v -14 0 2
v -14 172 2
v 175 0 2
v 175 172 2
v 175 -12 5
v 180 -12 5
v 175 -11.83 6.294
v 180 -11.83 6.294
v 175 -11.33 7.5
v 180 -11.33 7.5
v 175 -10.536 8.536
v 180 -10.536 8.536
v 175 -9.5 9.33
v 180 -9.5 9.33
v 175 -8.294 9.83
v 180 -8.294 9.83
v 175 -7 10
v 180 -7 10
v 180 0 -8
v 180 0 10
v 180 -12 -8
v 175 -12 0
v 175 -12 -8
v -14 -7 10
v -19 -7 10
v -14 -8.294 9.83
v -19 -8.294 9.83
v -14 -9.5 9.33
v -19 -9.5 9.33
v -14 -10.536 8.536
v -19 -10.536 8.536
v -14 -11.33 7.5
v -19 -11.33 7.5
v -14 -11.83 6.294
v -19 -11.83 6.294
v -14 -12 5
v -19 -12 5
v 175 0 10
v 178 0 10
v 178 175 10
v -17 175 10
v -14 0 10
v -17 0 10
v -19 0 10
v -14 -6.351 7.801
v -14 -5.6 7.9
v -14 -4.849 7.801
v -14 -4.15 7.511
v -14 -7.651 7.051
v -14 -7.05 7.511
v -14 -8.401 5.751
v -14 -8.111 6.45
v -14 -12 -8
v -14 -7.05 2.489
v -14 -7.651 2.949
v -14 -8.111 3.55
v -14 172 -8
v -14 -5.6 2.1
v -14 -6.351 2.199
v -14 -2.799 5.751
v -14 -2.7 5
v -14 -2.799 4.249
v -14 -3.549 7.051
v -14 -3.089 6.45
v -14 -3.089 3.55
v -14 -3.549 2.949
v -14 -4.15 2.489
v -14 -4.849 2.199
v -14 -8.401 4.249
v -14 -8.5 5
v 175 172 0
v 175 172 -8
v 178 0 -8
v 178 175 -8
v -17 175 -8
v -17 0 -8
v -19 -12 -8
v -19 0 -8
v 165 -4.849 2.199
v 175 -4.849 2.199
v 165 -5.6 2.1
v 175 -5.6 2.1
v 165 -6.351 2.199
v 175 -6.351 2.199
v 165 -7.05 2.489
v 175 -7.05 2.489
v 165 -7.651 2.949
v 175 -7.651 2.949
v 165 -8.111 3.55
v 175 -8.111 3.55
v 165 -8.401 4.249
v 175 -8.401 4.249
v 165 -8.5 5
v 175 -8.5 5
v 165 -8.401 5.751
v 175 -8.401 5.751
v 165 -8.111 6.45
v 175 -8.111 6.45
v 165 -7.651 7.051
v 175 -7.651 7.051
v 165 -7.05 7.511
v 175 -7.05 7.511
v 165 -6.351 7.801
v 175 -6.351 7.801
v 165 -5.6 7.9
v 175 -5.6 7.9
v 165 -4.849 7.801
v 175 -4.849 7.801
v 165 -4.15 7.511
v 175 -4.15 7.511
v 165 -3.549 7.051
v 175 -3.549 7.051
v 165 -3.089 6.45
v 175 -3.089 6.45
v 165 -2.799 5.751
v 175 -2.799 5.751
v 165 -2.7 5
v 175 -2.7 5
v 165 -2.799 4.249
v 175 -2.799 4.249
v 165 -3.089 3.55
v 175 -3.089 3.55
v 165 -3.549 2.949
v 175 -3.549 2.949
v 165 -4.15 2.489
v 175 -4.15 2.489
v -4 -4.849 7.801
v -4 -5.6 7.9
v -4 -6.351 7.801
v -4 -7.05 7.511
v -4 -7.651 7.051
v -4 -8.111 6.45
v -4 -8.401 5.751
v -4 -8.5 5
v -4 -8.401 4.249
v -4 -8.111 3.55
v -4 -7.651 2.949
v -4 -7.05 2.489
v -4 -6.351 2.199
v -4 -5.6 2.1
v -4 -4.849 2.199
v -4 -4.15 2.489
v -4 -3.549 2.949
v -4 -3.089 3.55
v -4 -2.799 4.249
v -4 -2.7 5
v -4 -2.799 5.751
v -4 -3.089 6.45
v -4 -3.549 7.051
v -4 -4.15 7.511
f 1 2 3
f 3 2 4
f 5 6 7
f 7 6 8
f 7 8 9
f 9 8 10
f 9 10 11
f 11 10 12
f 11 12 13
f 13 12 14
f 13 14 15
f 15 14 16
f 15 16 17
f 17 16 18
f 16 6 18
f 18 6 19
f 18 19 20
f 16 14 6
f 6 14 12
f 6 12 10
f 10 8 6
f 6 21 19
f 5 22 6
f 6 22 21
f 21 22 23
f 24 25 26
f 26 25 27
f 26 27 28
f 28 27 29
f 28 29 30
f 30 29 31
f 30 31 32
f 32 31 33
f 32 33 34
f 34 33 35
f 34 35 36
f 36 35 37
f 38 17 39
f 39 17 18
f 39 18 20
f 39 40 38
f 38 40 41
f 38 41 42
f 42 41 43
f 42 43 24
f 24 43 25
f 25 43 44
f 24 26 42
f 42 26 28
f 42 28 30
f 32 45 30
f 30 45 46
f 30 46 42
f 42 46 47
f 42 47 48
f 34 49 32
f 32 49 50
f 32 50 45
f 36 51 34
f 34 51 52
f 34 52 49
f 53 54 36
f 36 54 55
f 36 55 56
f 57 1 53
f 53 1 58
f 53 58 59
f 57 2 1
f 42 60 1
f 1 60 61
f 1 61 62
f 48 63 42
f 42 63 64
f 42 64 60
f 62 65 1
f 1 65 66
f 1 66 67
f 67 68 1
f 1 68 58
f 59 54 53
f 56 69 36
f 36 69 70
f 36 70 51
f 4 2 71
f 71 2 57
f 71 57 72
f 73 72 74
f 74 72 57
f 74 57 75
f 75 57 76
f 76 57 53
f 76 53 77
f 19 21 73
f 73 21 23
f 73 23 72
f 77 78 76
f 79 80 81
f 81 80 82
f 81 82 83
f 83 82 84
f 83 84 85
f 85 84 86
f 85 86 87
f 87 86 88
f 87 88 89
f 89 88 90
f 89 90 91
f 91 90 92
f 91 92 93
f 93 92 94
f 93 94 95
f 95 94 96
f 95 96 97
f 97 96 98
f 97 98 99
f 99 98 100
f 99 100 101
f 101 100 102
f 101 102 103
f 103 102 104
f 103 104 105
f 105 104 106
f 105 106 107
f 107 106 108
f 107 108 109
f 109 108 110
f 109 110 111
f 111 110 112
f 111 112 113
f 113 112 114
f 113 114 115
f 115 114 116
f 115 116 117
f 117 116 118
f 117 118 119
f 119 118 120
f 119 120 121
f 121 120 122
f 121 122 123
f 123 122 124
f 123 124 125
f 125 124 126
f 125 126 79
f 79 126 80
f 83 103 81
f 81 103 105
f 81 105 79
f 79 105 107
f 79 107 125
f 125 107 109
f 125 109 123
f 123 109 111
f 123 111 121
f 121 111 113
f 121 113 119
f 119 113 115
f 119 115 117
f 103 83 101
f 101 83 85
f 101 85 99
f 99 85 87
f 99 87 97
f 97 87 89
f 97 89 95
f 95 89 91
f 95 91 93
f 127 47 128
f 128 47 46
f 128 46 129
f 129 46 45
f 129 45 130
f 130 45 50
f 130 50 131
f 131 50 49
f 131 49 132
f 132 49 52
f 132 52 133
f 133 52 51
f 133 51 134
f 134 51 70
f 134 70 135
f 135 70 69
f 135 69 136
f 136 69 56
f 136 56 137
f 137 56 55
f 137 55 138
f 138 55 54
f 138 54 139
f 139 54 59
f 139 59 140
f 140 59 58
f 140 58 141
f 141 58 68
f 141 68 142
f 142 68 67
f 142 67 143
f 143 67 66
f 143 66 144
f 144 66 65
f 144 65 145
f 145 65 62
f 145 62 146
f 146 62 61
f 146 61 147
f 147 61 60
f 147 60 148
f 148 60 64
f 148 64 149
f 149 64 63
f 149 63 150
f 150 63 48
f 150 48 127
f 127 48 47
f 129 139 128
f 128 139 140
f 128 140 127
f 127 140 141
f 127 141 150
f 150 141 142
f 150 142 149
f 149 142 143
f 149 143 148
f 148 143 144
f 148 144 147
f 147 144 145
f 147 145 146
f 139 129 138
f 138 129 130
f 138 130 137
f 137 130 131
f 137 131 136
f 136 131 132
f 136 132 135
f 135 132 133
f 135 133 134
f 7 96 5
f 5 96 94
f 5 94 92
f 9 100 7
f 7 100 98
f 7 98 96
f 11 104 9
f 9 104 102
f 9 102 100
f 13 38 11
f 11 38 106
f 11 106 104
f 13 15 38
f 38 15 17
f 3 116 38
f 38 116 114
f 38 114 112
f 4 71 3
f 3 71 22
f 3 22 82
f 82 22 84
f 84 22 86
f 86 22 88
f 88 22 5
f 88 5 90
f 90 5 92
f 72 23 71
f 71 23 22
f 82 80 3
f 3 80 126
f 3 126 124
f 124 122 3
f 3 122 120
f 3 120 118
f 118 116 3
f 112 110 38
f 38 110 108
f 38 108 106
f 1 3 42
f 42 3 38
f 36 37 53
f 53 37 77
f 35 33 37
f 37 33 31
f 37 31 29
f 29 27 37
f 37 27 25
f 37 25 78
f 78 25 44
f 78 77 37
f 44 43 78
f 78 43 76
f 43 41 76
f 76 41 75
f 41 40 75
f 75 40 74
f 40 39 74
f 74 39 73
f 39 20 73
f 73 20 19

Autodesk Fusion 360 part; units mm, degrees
sketch "Sketch1" plane through (0, 0, 0) normal (0, 0, 1) x (1, 0, 0)
  line L0 (-14, 0) -> (175, 0)
  line L1 (180, -12) -> (180, 0)
  line L2 (178, 175) -> (-17, 175)
  line L3 (-19, 0) -> (-19, -12)
  line L4 (-19, -12) -> (-14, -12)
  line L5 (-14, -12) -> (-14, 0)
  line L6 (180, -12) -> (175, -12)
  line L7 (175, -12) -> (175, 0)
  line L8 (180, 0) -> (178, 0)
  line L9 (178, 0) -> (178, 175)
  line L10 (-17, 0) -> (-17, 175)
  line L11 (-17, 0) -> (-19, 0)
  dimension "d1" = 189
  dimension "d13" = 12
  dimension "d14" = 12
  dimension "d16" = 5
  dimension "d24" = 175
  dimension "d31" = 2
  dimension "d32" = 5
  dimension "d33" = 2
extrude "Extrude1" add sketch "Sketch1" along normal blind 10
sketch "Sketch2" plane through (-14, 0, 0) normal (1, 0, 0) x (0, 0, -1)
  line L0 (0, -12) -> (0, 0)
  line L1 (0, 0) -> (-10, 0)
  line L2 (-10, 0) -> (-10, -12)
  line L3 (-10, -12) -> (0, -12)
  circle A0 centre (-5, -5.6) radius 2.9
  dimension "d5" = 5.8
  dimension "d6" = 5.6
extrude "Extrude2" add sketch "Sketch2" along normal blind 10 contours A0
sketch "Sketch3" plane through (175, 0, 0) normal (-1, 0, 0) x (0, 0, 1)
  line L0 (0, 0) -> (0, -12)
  line L1 (0, -12) -> (10, -12)
  line L2 (10, -12) -> (10, 0)
  line L3 (10, 0) -> (0, 0)
  circle A0 centre (5, -5.6) radius 2.9
  dimension "d9" = 5.8
  dimension "d10" = 5.6
extrude "Extrude3" add sketch "Sketch3" along normal blind 10 contours A0
sketch "Sketch4" plane through (0, 0, 0) normal (0, 0, -1) x (-1, 0, 0)
  line L0 (19, -12) -> (19, 0)
  line L1 (17, 0) -> (17, 175)
  line L2 (17, 175) -> (-178, 175)
  line L3 (-178, 175) -> (-178, 0)
  line L4 (-178, 0) -> (-180, 0)
  line L5 (-180, 0) -> (-180, -12)
  line L6 (-180, -12) -> (-175, -12)
  line L7 (-175, -12) -> (-175, 0)
  line L8 (-175, 0) -> (14, 0)
  line L9 (14, 0) -> (14, -12)
  line L10 (14, -12) -> (19, -12)
  line L11 (-178, 0) -> (-180, 0)
  line L12 (-180, 0) -> (-180, -12)
  line L13 (-180, -12) -> (-175, -12)
  line L14 (-175, -12) -> (-175, 172)
  line L15 (-175, 172) -> (14, 172)
  line L16 (14, 172) -> (14, -12)
  line L17 (14, -12) -> (19, -12)
  line L18 (19, -12) -> (19, 0)
  line L19 (19, 0) -> (17, 0)
  line L20 (17, 0) -> (17, 175)
  line L21 (17, 175) -> (-178, 175)
  line L22 (-178, 175) -> (-178, 0)
  line L23 (19, 0) -> (17, 0)
  dimension "d19" = 3
  dimension "d20" = 3
  dimension "d21" = 3
extrude "Extrude4" add sketch "Sketch4" along normal blind 8 contours L0 L1 L2 L3 L4 L5 L6 L7 L9 L10 L11 L12 L13 L14 L15 L16 L17 L18 L19 L20 L21 L22 L23
fillet "Fillet1" radius 5 1 edges at (-16.5, -12, 10)
fillet "Fillet2" radius 5 1 edges at (177.5, -12, 10)
extrude "Extrude5" cut 1 faces at (112, 114.6667, 0) along direction (0, 0, 1) blind 2
